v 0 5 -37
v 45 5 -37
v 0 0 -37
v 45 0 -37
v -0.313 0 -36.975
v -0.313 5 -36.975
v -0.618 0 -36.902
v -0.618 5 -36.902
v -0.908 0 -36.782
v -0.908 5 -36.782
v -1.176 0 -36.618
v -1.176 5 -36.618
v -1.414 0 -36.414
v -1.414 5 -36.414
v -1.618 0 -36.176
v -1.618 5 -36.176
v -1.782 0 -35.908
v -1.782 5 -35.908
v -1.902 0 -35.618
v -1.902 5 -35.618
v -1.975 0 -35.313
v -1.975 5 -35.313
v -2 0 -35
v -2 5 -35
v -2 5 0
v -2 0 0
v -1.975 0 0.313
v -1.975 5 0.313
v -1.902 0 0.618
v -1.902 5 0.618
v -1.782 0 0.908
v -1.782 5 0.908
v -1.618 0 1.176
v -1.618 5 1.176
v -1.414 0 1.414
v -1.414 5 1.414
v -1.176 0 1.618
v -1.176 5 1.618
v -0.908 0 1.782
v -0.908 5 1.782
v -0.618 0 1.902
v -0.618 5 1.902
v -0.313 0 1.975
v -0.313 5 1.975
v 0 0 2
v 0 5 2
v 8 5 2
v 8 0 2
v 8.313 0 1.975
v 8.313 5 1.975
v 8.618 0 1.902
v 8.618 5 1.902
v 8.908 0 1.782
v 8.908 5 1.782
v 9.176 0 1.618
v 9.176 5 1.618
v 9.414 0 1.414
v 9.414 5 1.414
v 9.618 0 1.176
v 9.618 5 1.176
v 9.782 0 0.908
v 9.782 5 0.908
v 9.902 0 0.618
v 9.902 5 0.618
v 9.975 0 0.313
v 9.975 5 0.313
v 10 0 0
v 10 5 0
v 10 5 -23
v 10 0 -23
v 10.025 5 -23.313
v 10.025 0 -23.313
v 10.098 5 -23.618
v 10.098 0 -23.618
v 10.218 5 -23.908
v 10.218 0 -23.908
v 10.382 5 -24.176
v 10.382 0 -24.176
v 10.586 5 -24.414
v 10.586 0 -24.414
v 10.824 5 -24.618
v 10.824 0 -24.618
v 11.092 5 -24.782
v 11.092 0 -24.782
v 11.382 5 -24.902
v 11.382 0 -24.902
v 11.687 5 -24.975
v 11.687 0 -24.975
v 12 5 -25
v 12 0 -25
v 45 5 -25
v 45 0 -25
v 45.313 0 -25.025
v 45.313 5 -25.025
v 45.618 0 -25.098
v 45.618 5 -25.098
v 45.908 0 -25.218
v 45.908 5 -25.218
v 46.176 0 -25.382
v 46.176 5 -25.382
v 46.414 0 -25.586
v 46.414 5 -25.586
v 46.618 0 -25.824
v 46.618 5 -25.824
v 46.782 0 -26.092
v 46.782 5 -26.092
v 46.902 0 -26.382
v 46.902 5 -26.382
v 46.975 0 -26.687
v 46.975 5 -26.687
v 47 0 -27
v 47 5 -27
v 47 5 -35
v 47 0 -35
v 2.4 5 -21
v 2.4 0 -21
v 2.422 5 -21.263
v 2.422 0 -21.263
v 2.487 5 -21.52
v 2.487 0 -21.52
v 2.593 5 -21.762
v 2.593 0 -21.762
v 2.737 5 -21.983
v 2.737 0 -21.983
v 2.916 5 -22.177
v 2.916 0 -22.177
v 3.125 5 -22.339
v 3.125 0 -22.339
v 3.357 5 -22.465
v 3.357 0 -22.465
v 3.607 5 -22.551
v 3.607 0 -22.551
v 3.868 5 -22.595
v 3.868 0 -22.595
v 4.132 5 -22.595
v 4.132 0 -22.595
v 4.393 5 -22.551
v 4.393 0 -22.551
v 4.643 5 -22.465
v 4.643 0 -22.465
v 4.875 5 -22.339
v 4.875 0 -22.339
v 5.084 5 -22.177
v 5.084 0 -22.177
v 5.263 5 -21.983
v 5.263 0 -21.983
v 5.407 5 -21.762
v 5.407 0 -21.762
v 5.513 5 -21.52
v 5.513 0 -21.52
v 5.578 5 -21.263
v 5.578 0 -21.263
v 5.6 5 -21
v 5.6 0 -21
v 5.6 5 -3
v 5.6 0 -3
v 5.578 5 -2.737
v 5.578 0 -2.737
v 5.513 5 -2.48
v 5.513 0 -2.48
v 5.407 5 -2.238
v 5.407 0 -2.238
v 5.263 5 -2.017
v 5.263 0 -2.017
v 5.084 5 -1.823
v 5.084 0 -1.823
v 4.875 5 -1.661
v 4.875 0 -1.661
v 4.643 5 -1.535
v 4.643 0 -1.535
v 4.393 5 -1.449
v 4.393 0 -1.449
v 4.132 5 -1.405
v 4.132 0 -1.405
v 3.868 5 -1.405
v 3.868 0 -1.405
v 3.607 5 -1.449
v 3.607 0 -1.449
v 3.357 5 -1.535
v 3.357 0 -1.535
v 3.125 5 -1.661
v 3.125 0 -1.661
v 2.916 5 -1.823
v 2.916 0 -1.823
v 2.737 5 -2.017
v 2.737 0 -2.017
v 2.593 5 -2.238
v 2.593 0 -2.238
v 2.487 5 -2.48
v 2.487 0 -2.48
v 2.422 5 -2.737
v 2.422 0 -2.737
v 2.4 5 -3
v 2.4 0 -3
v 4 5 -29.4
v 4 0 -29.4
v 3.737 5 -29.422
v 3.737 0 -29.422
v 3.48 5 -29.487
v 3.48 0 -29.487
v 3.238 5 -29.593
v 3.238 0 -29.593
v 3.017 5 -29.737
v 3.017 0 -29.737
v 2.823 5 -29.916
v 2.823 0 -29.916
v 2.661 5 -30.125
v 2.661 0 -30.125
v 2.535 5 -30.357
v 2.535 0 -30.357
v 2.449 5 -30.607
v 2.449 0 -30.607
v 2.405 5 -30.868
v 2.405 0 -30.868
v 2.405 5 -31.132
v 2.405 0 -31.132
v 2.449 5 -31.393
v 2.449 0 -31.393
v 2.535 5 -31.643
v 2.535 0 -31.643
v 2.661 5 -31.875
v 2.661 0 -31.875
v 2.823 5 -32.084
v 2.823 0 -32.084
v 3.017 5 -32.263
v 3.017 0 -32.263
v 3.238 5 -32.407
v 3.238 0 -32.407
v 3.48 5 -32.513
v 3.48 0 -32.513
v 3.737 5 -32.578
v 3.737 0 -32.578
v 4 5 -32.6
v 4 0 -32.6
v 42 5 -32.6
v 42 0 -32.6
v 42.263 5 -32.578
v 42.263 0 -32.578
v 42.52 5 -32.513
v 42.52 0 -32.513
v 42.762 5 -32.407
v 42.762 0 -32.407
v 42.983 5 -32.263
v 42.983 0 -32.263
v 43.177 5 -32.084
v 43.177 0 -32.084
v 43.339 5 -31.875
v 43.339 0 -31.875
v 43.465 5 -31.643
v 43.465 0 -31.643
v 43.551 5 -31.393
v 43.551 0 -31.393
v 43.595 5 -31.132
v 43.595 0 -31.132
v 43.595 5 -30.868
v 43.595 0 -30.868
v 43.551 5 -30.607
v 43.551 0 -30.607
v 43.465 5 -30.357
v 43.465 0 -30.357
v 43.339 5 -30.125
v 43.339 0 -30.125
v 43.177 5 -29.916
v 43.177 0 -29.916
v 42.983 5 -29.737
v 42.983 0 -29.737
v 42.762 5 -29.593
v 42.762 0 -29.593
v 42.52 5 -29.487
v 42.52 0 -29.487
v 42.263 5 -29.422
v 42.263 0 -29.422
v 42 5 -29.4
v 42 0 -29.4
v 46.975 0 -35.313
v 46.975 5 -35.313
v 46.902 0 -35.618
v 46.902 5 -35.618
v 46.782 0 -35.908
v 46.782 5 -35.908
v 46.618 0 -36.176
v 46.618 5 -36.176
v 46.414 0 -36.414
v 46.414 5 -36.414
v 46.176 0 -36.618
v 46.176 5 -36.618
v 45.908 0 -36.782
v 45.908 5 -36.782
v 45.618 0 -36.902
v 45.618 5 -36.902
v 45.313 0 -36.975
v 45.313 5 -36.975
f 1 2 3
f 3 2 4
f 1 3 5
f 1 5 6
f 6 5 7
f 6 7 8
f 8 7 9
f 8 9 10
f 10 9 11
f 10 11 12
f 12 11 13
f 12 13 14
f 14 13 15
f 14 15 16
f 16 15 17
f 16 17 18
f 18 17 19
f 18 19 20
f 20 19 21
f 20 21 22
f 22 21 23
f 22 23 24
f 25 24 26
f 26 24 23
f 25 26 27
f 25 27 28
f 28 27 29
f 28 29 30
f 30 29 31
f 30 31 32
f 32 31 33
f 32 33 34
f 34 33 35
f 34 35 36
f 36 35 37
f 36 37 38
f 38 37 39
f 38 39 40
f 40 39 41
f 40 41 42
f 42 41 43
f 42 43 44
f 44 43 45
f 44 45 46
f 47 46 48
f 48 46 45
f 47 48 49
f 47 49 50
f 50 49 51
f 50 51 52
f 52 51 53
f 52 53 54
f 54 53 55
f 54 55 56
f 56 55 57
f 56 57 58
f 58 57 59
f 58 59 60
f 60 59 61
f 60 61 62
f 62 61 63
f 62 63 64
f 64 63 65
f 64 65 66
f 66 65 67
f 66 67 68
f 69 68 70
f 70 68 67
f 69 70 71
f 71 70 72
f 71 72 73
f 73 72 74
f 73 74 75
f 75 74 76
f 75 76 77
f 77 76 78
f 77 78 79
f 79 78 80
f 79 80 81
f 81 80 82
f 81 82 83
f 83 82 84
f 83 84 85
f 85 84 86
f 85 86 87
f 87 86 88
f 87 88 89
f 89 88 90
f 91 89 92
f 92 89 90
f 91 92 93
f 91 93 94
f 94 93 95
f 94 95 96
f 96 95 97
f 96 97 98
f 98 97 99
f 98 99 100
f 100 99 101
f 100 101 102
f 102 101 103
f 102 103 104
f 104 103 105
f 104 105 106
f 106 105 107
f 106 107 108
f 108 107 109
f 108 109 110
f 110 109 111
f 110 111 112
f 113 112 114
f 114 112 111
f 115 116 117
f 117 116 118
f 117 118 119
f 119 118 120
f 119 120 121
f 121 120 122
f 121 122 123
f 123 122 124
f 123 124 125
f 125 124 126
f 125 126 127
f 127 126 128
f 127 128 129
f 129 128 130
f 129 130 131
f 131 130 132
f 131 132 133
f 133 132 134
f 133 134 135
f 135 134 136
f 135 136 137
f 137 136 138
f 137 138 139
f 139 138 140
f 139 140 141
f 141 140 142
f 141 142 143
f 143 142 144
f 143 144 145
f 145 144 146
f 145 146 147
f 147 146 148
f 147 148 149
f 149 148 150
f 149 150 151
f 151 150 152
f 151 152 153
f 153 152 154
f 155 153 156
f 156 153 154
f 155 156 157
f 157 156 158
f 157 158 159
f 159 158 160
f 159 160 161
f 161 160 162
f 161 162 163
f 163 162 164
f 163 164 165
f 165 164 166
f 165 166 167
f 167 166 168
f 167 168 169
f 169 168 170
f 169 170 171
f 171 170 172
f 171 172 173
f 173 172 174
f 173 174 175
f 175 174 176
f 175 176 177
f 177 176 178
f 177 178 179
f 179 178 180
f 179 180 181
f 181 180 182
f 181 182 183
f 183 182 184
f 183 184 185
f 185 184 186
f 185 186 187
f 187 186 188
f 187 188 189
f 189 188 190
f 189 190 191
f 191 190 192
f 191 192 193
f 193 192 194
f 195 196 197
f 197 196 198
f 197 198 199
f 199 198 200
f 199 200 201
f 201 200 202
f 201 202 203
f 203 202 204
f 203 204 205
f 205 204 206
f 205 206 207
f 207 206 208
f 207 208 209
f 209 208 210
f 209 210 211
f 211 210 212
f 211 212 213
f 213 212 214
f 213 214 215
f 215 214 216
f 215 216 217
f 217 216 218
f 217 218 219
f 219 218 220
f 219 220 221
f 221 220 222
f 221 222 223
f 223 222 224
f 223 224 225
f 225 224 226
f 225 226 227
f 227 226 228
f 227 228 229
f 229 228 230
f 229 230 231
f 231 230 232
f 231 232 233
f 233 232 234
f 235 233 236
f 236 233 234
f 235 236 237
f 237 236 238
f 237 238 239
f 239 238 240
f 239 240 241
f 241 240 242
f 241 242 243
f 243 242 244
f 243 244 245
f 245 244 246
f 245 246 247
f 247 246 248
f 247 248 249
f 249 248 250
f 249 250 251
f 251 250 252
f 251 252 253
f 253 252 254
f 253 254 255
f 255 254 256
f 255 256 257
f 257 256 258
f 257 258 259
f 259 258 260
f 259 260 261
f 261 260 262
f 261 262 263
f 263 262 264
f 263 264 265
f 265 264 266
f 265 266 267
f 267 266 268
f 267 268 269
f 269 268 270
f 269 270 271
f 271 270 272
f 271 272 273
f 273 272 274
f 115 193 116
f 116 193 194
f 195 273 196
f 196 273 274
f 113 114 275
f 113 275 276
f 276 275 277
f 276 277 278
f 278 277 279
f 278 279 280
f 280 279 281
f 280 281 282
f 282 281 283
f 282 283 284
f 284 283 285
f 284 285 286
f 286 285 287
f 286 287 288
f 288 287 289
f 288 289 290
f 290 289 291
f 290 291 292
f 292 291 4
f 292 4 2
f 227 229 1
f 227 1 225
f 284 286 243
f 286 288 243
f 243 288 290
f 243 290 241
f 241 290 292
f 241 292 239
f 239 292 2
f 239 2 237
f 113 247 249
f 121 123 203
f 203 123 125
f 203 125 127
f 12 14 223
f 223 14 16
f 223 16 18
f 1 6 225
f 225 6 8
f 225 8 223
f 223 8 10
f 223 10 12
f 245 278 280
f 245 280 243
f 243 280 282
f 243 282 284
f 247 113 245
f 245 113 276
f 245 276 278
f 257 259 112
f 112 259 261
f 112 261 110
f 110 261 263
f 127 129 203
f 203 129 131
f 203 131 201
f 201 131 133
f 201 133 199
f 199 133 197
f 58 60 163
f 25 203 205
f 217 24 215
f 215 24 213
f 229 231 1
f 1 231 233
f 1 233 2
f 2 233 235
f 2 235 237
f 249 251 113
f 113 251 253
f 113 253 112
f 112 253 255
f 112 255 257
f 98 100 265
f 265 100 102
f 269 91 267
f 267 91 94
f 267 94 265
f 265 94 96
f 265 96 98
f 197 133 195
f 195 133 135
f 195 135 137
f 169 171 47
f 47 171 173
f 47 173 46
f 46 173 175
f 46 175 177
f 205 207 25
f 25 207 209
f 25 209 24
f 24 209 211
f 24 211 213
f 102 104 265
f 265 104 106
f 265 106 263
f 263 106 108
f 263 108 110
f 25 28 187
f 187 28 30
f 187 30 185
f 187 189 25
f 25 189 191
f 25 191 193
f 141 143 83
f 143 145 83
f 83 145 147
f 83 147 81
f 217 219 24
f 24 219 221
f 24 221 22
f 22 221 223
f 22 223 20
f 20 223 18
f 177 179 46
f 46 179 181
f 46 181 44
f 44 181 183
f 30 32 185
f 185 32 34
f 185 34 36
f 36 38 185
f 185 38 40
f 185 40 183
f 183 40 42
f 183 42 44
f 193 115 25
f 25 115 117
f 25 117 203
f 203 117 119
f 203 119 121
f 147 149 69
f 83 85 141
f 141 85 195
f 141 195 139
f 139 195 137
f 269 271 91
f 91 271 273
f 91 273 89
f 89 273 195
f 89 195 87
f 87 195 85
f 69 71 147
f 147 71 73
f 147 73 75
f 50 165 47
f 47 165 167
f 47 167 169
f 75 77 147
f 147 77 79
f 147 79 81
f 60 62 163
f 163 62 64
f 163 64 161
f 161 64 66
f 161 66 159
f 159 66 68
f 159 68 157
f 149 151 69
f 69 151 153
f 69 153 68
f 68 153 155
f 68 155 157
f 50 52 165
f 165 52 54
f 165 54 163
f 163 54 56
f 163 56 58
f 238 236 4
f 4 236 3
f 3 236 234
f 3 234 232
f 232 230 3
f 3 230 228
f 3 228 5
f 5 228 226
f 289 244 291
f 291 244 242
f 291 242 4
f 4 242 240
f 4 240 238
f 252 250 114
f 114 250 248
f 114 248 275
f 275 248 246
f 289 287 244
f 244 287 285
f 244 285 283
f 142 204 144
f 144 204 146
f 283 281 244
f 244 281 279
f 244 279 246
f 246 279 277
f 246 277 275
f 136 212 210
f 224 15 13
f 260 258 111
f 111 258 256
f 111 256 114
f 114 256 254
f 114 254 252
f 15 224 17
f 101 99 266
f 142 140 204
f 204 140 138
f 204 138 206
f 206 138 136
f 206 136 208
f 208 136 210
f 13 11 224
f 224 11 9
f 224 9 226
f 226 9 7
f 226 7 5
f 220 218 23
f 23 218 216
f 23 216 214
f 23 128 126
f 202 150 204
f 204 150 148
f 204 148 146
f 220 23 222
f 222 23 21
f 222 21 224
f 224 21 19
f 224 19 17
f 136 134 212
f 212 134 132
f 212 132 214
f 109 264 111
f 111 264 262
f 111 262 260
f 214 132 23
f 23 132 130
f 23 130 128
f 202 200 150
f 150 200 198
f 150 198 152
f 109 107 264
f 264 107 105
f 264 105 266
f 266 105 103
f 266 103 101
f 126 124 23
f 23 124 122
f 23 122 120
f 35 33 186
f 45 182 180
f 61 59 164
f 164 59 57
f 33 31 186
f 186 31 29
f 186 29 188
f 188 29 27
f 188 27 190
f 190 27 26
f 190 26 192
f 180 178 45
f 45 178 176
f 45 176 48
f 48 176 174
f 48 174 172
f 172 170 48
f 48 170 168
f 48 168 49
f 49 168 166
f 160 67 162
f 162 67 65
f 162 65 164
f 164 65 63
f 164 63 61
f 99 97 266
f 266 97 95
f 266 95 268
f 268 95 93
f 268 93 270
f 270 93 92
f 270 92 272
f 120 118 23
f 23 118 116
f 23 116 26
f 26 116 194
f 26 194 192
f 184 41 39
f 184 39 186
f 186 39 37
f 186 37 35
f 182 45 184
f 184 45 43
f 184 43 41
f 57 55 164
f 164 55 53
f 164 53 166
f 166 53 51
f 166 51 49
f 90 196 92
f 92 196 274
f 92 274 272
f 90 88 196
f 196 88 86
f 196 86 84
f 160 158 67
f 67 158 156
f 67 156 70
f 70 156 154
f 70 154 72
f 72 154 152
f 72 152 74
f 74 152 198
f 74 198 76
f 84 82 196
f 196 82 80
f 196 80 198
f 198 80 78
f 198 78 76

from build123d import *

# Parameters (mm, degrees)
BOSS_EXTRUDE1_DEPTH = 5


with BuildPart() as part:
    # Sketch1 → Boss-Extrude1 (new body)
    with BuildSketch(Plane(origin=(0, 0, 0), x_dir=(1, 0, 0), z_dir=(0, 1, 0))):
        with BuildLine():
            Line((0, -2), (8, -2))
            ThreePointArc((8, -2), (9.414213562, -1.414213562), (10, 0))
            Line((10, 0), (10, 23))
            ThreePointArc((10, 23), (10.585786438, 24.414213562), (12, 25))
            Line((12, 25), (45, 25))
            ThreePointArc((45, 25), (46.414213562, 25.585786438), (47, 27))
            Line((47, 27), (47, 35))
            ThreePointArc((47, 35), (46.414213562, 36.414213562), (45, 37))
            Line((45, 37), (0, 37))
            ThreePointArc((0, 37), (-1.414213562, 36.414213562), (-2, 35))
            Line((-2, 35), (-2, 0))
            ThreePointArc((-2, 0), (-1.414213562, -1.414213562), (0, -2))
        make_face()
        with BuildLine():
            Line((42, 29.4), (4, 29.4))
            ThreePointArc((4, 29.4), (2.4, 31), (4, 32.6))
            Line((4, 32.6), (42, 32.6))
            ThreePointArc((42, 32.6), (43.6, 31), (42, 29.4))
        make_face(mode=Mode.SUBTRACT)
        with BuildLine():
            Line((2.4, 3), (2.4, 21))
            ThreePointArc((2.4, 21), (4, 22.6), (5.6, 21))
            Line((5.6, 21), (5.6, 3))
            ThreePointArc((5.6, 3), (4, 1.4), (2.4, 3))
        make_face(mode=Mode.SUBTRACT)
    extrude(amount=BOSS_EXTRUDE1_DEPTH)


solid = part.part
